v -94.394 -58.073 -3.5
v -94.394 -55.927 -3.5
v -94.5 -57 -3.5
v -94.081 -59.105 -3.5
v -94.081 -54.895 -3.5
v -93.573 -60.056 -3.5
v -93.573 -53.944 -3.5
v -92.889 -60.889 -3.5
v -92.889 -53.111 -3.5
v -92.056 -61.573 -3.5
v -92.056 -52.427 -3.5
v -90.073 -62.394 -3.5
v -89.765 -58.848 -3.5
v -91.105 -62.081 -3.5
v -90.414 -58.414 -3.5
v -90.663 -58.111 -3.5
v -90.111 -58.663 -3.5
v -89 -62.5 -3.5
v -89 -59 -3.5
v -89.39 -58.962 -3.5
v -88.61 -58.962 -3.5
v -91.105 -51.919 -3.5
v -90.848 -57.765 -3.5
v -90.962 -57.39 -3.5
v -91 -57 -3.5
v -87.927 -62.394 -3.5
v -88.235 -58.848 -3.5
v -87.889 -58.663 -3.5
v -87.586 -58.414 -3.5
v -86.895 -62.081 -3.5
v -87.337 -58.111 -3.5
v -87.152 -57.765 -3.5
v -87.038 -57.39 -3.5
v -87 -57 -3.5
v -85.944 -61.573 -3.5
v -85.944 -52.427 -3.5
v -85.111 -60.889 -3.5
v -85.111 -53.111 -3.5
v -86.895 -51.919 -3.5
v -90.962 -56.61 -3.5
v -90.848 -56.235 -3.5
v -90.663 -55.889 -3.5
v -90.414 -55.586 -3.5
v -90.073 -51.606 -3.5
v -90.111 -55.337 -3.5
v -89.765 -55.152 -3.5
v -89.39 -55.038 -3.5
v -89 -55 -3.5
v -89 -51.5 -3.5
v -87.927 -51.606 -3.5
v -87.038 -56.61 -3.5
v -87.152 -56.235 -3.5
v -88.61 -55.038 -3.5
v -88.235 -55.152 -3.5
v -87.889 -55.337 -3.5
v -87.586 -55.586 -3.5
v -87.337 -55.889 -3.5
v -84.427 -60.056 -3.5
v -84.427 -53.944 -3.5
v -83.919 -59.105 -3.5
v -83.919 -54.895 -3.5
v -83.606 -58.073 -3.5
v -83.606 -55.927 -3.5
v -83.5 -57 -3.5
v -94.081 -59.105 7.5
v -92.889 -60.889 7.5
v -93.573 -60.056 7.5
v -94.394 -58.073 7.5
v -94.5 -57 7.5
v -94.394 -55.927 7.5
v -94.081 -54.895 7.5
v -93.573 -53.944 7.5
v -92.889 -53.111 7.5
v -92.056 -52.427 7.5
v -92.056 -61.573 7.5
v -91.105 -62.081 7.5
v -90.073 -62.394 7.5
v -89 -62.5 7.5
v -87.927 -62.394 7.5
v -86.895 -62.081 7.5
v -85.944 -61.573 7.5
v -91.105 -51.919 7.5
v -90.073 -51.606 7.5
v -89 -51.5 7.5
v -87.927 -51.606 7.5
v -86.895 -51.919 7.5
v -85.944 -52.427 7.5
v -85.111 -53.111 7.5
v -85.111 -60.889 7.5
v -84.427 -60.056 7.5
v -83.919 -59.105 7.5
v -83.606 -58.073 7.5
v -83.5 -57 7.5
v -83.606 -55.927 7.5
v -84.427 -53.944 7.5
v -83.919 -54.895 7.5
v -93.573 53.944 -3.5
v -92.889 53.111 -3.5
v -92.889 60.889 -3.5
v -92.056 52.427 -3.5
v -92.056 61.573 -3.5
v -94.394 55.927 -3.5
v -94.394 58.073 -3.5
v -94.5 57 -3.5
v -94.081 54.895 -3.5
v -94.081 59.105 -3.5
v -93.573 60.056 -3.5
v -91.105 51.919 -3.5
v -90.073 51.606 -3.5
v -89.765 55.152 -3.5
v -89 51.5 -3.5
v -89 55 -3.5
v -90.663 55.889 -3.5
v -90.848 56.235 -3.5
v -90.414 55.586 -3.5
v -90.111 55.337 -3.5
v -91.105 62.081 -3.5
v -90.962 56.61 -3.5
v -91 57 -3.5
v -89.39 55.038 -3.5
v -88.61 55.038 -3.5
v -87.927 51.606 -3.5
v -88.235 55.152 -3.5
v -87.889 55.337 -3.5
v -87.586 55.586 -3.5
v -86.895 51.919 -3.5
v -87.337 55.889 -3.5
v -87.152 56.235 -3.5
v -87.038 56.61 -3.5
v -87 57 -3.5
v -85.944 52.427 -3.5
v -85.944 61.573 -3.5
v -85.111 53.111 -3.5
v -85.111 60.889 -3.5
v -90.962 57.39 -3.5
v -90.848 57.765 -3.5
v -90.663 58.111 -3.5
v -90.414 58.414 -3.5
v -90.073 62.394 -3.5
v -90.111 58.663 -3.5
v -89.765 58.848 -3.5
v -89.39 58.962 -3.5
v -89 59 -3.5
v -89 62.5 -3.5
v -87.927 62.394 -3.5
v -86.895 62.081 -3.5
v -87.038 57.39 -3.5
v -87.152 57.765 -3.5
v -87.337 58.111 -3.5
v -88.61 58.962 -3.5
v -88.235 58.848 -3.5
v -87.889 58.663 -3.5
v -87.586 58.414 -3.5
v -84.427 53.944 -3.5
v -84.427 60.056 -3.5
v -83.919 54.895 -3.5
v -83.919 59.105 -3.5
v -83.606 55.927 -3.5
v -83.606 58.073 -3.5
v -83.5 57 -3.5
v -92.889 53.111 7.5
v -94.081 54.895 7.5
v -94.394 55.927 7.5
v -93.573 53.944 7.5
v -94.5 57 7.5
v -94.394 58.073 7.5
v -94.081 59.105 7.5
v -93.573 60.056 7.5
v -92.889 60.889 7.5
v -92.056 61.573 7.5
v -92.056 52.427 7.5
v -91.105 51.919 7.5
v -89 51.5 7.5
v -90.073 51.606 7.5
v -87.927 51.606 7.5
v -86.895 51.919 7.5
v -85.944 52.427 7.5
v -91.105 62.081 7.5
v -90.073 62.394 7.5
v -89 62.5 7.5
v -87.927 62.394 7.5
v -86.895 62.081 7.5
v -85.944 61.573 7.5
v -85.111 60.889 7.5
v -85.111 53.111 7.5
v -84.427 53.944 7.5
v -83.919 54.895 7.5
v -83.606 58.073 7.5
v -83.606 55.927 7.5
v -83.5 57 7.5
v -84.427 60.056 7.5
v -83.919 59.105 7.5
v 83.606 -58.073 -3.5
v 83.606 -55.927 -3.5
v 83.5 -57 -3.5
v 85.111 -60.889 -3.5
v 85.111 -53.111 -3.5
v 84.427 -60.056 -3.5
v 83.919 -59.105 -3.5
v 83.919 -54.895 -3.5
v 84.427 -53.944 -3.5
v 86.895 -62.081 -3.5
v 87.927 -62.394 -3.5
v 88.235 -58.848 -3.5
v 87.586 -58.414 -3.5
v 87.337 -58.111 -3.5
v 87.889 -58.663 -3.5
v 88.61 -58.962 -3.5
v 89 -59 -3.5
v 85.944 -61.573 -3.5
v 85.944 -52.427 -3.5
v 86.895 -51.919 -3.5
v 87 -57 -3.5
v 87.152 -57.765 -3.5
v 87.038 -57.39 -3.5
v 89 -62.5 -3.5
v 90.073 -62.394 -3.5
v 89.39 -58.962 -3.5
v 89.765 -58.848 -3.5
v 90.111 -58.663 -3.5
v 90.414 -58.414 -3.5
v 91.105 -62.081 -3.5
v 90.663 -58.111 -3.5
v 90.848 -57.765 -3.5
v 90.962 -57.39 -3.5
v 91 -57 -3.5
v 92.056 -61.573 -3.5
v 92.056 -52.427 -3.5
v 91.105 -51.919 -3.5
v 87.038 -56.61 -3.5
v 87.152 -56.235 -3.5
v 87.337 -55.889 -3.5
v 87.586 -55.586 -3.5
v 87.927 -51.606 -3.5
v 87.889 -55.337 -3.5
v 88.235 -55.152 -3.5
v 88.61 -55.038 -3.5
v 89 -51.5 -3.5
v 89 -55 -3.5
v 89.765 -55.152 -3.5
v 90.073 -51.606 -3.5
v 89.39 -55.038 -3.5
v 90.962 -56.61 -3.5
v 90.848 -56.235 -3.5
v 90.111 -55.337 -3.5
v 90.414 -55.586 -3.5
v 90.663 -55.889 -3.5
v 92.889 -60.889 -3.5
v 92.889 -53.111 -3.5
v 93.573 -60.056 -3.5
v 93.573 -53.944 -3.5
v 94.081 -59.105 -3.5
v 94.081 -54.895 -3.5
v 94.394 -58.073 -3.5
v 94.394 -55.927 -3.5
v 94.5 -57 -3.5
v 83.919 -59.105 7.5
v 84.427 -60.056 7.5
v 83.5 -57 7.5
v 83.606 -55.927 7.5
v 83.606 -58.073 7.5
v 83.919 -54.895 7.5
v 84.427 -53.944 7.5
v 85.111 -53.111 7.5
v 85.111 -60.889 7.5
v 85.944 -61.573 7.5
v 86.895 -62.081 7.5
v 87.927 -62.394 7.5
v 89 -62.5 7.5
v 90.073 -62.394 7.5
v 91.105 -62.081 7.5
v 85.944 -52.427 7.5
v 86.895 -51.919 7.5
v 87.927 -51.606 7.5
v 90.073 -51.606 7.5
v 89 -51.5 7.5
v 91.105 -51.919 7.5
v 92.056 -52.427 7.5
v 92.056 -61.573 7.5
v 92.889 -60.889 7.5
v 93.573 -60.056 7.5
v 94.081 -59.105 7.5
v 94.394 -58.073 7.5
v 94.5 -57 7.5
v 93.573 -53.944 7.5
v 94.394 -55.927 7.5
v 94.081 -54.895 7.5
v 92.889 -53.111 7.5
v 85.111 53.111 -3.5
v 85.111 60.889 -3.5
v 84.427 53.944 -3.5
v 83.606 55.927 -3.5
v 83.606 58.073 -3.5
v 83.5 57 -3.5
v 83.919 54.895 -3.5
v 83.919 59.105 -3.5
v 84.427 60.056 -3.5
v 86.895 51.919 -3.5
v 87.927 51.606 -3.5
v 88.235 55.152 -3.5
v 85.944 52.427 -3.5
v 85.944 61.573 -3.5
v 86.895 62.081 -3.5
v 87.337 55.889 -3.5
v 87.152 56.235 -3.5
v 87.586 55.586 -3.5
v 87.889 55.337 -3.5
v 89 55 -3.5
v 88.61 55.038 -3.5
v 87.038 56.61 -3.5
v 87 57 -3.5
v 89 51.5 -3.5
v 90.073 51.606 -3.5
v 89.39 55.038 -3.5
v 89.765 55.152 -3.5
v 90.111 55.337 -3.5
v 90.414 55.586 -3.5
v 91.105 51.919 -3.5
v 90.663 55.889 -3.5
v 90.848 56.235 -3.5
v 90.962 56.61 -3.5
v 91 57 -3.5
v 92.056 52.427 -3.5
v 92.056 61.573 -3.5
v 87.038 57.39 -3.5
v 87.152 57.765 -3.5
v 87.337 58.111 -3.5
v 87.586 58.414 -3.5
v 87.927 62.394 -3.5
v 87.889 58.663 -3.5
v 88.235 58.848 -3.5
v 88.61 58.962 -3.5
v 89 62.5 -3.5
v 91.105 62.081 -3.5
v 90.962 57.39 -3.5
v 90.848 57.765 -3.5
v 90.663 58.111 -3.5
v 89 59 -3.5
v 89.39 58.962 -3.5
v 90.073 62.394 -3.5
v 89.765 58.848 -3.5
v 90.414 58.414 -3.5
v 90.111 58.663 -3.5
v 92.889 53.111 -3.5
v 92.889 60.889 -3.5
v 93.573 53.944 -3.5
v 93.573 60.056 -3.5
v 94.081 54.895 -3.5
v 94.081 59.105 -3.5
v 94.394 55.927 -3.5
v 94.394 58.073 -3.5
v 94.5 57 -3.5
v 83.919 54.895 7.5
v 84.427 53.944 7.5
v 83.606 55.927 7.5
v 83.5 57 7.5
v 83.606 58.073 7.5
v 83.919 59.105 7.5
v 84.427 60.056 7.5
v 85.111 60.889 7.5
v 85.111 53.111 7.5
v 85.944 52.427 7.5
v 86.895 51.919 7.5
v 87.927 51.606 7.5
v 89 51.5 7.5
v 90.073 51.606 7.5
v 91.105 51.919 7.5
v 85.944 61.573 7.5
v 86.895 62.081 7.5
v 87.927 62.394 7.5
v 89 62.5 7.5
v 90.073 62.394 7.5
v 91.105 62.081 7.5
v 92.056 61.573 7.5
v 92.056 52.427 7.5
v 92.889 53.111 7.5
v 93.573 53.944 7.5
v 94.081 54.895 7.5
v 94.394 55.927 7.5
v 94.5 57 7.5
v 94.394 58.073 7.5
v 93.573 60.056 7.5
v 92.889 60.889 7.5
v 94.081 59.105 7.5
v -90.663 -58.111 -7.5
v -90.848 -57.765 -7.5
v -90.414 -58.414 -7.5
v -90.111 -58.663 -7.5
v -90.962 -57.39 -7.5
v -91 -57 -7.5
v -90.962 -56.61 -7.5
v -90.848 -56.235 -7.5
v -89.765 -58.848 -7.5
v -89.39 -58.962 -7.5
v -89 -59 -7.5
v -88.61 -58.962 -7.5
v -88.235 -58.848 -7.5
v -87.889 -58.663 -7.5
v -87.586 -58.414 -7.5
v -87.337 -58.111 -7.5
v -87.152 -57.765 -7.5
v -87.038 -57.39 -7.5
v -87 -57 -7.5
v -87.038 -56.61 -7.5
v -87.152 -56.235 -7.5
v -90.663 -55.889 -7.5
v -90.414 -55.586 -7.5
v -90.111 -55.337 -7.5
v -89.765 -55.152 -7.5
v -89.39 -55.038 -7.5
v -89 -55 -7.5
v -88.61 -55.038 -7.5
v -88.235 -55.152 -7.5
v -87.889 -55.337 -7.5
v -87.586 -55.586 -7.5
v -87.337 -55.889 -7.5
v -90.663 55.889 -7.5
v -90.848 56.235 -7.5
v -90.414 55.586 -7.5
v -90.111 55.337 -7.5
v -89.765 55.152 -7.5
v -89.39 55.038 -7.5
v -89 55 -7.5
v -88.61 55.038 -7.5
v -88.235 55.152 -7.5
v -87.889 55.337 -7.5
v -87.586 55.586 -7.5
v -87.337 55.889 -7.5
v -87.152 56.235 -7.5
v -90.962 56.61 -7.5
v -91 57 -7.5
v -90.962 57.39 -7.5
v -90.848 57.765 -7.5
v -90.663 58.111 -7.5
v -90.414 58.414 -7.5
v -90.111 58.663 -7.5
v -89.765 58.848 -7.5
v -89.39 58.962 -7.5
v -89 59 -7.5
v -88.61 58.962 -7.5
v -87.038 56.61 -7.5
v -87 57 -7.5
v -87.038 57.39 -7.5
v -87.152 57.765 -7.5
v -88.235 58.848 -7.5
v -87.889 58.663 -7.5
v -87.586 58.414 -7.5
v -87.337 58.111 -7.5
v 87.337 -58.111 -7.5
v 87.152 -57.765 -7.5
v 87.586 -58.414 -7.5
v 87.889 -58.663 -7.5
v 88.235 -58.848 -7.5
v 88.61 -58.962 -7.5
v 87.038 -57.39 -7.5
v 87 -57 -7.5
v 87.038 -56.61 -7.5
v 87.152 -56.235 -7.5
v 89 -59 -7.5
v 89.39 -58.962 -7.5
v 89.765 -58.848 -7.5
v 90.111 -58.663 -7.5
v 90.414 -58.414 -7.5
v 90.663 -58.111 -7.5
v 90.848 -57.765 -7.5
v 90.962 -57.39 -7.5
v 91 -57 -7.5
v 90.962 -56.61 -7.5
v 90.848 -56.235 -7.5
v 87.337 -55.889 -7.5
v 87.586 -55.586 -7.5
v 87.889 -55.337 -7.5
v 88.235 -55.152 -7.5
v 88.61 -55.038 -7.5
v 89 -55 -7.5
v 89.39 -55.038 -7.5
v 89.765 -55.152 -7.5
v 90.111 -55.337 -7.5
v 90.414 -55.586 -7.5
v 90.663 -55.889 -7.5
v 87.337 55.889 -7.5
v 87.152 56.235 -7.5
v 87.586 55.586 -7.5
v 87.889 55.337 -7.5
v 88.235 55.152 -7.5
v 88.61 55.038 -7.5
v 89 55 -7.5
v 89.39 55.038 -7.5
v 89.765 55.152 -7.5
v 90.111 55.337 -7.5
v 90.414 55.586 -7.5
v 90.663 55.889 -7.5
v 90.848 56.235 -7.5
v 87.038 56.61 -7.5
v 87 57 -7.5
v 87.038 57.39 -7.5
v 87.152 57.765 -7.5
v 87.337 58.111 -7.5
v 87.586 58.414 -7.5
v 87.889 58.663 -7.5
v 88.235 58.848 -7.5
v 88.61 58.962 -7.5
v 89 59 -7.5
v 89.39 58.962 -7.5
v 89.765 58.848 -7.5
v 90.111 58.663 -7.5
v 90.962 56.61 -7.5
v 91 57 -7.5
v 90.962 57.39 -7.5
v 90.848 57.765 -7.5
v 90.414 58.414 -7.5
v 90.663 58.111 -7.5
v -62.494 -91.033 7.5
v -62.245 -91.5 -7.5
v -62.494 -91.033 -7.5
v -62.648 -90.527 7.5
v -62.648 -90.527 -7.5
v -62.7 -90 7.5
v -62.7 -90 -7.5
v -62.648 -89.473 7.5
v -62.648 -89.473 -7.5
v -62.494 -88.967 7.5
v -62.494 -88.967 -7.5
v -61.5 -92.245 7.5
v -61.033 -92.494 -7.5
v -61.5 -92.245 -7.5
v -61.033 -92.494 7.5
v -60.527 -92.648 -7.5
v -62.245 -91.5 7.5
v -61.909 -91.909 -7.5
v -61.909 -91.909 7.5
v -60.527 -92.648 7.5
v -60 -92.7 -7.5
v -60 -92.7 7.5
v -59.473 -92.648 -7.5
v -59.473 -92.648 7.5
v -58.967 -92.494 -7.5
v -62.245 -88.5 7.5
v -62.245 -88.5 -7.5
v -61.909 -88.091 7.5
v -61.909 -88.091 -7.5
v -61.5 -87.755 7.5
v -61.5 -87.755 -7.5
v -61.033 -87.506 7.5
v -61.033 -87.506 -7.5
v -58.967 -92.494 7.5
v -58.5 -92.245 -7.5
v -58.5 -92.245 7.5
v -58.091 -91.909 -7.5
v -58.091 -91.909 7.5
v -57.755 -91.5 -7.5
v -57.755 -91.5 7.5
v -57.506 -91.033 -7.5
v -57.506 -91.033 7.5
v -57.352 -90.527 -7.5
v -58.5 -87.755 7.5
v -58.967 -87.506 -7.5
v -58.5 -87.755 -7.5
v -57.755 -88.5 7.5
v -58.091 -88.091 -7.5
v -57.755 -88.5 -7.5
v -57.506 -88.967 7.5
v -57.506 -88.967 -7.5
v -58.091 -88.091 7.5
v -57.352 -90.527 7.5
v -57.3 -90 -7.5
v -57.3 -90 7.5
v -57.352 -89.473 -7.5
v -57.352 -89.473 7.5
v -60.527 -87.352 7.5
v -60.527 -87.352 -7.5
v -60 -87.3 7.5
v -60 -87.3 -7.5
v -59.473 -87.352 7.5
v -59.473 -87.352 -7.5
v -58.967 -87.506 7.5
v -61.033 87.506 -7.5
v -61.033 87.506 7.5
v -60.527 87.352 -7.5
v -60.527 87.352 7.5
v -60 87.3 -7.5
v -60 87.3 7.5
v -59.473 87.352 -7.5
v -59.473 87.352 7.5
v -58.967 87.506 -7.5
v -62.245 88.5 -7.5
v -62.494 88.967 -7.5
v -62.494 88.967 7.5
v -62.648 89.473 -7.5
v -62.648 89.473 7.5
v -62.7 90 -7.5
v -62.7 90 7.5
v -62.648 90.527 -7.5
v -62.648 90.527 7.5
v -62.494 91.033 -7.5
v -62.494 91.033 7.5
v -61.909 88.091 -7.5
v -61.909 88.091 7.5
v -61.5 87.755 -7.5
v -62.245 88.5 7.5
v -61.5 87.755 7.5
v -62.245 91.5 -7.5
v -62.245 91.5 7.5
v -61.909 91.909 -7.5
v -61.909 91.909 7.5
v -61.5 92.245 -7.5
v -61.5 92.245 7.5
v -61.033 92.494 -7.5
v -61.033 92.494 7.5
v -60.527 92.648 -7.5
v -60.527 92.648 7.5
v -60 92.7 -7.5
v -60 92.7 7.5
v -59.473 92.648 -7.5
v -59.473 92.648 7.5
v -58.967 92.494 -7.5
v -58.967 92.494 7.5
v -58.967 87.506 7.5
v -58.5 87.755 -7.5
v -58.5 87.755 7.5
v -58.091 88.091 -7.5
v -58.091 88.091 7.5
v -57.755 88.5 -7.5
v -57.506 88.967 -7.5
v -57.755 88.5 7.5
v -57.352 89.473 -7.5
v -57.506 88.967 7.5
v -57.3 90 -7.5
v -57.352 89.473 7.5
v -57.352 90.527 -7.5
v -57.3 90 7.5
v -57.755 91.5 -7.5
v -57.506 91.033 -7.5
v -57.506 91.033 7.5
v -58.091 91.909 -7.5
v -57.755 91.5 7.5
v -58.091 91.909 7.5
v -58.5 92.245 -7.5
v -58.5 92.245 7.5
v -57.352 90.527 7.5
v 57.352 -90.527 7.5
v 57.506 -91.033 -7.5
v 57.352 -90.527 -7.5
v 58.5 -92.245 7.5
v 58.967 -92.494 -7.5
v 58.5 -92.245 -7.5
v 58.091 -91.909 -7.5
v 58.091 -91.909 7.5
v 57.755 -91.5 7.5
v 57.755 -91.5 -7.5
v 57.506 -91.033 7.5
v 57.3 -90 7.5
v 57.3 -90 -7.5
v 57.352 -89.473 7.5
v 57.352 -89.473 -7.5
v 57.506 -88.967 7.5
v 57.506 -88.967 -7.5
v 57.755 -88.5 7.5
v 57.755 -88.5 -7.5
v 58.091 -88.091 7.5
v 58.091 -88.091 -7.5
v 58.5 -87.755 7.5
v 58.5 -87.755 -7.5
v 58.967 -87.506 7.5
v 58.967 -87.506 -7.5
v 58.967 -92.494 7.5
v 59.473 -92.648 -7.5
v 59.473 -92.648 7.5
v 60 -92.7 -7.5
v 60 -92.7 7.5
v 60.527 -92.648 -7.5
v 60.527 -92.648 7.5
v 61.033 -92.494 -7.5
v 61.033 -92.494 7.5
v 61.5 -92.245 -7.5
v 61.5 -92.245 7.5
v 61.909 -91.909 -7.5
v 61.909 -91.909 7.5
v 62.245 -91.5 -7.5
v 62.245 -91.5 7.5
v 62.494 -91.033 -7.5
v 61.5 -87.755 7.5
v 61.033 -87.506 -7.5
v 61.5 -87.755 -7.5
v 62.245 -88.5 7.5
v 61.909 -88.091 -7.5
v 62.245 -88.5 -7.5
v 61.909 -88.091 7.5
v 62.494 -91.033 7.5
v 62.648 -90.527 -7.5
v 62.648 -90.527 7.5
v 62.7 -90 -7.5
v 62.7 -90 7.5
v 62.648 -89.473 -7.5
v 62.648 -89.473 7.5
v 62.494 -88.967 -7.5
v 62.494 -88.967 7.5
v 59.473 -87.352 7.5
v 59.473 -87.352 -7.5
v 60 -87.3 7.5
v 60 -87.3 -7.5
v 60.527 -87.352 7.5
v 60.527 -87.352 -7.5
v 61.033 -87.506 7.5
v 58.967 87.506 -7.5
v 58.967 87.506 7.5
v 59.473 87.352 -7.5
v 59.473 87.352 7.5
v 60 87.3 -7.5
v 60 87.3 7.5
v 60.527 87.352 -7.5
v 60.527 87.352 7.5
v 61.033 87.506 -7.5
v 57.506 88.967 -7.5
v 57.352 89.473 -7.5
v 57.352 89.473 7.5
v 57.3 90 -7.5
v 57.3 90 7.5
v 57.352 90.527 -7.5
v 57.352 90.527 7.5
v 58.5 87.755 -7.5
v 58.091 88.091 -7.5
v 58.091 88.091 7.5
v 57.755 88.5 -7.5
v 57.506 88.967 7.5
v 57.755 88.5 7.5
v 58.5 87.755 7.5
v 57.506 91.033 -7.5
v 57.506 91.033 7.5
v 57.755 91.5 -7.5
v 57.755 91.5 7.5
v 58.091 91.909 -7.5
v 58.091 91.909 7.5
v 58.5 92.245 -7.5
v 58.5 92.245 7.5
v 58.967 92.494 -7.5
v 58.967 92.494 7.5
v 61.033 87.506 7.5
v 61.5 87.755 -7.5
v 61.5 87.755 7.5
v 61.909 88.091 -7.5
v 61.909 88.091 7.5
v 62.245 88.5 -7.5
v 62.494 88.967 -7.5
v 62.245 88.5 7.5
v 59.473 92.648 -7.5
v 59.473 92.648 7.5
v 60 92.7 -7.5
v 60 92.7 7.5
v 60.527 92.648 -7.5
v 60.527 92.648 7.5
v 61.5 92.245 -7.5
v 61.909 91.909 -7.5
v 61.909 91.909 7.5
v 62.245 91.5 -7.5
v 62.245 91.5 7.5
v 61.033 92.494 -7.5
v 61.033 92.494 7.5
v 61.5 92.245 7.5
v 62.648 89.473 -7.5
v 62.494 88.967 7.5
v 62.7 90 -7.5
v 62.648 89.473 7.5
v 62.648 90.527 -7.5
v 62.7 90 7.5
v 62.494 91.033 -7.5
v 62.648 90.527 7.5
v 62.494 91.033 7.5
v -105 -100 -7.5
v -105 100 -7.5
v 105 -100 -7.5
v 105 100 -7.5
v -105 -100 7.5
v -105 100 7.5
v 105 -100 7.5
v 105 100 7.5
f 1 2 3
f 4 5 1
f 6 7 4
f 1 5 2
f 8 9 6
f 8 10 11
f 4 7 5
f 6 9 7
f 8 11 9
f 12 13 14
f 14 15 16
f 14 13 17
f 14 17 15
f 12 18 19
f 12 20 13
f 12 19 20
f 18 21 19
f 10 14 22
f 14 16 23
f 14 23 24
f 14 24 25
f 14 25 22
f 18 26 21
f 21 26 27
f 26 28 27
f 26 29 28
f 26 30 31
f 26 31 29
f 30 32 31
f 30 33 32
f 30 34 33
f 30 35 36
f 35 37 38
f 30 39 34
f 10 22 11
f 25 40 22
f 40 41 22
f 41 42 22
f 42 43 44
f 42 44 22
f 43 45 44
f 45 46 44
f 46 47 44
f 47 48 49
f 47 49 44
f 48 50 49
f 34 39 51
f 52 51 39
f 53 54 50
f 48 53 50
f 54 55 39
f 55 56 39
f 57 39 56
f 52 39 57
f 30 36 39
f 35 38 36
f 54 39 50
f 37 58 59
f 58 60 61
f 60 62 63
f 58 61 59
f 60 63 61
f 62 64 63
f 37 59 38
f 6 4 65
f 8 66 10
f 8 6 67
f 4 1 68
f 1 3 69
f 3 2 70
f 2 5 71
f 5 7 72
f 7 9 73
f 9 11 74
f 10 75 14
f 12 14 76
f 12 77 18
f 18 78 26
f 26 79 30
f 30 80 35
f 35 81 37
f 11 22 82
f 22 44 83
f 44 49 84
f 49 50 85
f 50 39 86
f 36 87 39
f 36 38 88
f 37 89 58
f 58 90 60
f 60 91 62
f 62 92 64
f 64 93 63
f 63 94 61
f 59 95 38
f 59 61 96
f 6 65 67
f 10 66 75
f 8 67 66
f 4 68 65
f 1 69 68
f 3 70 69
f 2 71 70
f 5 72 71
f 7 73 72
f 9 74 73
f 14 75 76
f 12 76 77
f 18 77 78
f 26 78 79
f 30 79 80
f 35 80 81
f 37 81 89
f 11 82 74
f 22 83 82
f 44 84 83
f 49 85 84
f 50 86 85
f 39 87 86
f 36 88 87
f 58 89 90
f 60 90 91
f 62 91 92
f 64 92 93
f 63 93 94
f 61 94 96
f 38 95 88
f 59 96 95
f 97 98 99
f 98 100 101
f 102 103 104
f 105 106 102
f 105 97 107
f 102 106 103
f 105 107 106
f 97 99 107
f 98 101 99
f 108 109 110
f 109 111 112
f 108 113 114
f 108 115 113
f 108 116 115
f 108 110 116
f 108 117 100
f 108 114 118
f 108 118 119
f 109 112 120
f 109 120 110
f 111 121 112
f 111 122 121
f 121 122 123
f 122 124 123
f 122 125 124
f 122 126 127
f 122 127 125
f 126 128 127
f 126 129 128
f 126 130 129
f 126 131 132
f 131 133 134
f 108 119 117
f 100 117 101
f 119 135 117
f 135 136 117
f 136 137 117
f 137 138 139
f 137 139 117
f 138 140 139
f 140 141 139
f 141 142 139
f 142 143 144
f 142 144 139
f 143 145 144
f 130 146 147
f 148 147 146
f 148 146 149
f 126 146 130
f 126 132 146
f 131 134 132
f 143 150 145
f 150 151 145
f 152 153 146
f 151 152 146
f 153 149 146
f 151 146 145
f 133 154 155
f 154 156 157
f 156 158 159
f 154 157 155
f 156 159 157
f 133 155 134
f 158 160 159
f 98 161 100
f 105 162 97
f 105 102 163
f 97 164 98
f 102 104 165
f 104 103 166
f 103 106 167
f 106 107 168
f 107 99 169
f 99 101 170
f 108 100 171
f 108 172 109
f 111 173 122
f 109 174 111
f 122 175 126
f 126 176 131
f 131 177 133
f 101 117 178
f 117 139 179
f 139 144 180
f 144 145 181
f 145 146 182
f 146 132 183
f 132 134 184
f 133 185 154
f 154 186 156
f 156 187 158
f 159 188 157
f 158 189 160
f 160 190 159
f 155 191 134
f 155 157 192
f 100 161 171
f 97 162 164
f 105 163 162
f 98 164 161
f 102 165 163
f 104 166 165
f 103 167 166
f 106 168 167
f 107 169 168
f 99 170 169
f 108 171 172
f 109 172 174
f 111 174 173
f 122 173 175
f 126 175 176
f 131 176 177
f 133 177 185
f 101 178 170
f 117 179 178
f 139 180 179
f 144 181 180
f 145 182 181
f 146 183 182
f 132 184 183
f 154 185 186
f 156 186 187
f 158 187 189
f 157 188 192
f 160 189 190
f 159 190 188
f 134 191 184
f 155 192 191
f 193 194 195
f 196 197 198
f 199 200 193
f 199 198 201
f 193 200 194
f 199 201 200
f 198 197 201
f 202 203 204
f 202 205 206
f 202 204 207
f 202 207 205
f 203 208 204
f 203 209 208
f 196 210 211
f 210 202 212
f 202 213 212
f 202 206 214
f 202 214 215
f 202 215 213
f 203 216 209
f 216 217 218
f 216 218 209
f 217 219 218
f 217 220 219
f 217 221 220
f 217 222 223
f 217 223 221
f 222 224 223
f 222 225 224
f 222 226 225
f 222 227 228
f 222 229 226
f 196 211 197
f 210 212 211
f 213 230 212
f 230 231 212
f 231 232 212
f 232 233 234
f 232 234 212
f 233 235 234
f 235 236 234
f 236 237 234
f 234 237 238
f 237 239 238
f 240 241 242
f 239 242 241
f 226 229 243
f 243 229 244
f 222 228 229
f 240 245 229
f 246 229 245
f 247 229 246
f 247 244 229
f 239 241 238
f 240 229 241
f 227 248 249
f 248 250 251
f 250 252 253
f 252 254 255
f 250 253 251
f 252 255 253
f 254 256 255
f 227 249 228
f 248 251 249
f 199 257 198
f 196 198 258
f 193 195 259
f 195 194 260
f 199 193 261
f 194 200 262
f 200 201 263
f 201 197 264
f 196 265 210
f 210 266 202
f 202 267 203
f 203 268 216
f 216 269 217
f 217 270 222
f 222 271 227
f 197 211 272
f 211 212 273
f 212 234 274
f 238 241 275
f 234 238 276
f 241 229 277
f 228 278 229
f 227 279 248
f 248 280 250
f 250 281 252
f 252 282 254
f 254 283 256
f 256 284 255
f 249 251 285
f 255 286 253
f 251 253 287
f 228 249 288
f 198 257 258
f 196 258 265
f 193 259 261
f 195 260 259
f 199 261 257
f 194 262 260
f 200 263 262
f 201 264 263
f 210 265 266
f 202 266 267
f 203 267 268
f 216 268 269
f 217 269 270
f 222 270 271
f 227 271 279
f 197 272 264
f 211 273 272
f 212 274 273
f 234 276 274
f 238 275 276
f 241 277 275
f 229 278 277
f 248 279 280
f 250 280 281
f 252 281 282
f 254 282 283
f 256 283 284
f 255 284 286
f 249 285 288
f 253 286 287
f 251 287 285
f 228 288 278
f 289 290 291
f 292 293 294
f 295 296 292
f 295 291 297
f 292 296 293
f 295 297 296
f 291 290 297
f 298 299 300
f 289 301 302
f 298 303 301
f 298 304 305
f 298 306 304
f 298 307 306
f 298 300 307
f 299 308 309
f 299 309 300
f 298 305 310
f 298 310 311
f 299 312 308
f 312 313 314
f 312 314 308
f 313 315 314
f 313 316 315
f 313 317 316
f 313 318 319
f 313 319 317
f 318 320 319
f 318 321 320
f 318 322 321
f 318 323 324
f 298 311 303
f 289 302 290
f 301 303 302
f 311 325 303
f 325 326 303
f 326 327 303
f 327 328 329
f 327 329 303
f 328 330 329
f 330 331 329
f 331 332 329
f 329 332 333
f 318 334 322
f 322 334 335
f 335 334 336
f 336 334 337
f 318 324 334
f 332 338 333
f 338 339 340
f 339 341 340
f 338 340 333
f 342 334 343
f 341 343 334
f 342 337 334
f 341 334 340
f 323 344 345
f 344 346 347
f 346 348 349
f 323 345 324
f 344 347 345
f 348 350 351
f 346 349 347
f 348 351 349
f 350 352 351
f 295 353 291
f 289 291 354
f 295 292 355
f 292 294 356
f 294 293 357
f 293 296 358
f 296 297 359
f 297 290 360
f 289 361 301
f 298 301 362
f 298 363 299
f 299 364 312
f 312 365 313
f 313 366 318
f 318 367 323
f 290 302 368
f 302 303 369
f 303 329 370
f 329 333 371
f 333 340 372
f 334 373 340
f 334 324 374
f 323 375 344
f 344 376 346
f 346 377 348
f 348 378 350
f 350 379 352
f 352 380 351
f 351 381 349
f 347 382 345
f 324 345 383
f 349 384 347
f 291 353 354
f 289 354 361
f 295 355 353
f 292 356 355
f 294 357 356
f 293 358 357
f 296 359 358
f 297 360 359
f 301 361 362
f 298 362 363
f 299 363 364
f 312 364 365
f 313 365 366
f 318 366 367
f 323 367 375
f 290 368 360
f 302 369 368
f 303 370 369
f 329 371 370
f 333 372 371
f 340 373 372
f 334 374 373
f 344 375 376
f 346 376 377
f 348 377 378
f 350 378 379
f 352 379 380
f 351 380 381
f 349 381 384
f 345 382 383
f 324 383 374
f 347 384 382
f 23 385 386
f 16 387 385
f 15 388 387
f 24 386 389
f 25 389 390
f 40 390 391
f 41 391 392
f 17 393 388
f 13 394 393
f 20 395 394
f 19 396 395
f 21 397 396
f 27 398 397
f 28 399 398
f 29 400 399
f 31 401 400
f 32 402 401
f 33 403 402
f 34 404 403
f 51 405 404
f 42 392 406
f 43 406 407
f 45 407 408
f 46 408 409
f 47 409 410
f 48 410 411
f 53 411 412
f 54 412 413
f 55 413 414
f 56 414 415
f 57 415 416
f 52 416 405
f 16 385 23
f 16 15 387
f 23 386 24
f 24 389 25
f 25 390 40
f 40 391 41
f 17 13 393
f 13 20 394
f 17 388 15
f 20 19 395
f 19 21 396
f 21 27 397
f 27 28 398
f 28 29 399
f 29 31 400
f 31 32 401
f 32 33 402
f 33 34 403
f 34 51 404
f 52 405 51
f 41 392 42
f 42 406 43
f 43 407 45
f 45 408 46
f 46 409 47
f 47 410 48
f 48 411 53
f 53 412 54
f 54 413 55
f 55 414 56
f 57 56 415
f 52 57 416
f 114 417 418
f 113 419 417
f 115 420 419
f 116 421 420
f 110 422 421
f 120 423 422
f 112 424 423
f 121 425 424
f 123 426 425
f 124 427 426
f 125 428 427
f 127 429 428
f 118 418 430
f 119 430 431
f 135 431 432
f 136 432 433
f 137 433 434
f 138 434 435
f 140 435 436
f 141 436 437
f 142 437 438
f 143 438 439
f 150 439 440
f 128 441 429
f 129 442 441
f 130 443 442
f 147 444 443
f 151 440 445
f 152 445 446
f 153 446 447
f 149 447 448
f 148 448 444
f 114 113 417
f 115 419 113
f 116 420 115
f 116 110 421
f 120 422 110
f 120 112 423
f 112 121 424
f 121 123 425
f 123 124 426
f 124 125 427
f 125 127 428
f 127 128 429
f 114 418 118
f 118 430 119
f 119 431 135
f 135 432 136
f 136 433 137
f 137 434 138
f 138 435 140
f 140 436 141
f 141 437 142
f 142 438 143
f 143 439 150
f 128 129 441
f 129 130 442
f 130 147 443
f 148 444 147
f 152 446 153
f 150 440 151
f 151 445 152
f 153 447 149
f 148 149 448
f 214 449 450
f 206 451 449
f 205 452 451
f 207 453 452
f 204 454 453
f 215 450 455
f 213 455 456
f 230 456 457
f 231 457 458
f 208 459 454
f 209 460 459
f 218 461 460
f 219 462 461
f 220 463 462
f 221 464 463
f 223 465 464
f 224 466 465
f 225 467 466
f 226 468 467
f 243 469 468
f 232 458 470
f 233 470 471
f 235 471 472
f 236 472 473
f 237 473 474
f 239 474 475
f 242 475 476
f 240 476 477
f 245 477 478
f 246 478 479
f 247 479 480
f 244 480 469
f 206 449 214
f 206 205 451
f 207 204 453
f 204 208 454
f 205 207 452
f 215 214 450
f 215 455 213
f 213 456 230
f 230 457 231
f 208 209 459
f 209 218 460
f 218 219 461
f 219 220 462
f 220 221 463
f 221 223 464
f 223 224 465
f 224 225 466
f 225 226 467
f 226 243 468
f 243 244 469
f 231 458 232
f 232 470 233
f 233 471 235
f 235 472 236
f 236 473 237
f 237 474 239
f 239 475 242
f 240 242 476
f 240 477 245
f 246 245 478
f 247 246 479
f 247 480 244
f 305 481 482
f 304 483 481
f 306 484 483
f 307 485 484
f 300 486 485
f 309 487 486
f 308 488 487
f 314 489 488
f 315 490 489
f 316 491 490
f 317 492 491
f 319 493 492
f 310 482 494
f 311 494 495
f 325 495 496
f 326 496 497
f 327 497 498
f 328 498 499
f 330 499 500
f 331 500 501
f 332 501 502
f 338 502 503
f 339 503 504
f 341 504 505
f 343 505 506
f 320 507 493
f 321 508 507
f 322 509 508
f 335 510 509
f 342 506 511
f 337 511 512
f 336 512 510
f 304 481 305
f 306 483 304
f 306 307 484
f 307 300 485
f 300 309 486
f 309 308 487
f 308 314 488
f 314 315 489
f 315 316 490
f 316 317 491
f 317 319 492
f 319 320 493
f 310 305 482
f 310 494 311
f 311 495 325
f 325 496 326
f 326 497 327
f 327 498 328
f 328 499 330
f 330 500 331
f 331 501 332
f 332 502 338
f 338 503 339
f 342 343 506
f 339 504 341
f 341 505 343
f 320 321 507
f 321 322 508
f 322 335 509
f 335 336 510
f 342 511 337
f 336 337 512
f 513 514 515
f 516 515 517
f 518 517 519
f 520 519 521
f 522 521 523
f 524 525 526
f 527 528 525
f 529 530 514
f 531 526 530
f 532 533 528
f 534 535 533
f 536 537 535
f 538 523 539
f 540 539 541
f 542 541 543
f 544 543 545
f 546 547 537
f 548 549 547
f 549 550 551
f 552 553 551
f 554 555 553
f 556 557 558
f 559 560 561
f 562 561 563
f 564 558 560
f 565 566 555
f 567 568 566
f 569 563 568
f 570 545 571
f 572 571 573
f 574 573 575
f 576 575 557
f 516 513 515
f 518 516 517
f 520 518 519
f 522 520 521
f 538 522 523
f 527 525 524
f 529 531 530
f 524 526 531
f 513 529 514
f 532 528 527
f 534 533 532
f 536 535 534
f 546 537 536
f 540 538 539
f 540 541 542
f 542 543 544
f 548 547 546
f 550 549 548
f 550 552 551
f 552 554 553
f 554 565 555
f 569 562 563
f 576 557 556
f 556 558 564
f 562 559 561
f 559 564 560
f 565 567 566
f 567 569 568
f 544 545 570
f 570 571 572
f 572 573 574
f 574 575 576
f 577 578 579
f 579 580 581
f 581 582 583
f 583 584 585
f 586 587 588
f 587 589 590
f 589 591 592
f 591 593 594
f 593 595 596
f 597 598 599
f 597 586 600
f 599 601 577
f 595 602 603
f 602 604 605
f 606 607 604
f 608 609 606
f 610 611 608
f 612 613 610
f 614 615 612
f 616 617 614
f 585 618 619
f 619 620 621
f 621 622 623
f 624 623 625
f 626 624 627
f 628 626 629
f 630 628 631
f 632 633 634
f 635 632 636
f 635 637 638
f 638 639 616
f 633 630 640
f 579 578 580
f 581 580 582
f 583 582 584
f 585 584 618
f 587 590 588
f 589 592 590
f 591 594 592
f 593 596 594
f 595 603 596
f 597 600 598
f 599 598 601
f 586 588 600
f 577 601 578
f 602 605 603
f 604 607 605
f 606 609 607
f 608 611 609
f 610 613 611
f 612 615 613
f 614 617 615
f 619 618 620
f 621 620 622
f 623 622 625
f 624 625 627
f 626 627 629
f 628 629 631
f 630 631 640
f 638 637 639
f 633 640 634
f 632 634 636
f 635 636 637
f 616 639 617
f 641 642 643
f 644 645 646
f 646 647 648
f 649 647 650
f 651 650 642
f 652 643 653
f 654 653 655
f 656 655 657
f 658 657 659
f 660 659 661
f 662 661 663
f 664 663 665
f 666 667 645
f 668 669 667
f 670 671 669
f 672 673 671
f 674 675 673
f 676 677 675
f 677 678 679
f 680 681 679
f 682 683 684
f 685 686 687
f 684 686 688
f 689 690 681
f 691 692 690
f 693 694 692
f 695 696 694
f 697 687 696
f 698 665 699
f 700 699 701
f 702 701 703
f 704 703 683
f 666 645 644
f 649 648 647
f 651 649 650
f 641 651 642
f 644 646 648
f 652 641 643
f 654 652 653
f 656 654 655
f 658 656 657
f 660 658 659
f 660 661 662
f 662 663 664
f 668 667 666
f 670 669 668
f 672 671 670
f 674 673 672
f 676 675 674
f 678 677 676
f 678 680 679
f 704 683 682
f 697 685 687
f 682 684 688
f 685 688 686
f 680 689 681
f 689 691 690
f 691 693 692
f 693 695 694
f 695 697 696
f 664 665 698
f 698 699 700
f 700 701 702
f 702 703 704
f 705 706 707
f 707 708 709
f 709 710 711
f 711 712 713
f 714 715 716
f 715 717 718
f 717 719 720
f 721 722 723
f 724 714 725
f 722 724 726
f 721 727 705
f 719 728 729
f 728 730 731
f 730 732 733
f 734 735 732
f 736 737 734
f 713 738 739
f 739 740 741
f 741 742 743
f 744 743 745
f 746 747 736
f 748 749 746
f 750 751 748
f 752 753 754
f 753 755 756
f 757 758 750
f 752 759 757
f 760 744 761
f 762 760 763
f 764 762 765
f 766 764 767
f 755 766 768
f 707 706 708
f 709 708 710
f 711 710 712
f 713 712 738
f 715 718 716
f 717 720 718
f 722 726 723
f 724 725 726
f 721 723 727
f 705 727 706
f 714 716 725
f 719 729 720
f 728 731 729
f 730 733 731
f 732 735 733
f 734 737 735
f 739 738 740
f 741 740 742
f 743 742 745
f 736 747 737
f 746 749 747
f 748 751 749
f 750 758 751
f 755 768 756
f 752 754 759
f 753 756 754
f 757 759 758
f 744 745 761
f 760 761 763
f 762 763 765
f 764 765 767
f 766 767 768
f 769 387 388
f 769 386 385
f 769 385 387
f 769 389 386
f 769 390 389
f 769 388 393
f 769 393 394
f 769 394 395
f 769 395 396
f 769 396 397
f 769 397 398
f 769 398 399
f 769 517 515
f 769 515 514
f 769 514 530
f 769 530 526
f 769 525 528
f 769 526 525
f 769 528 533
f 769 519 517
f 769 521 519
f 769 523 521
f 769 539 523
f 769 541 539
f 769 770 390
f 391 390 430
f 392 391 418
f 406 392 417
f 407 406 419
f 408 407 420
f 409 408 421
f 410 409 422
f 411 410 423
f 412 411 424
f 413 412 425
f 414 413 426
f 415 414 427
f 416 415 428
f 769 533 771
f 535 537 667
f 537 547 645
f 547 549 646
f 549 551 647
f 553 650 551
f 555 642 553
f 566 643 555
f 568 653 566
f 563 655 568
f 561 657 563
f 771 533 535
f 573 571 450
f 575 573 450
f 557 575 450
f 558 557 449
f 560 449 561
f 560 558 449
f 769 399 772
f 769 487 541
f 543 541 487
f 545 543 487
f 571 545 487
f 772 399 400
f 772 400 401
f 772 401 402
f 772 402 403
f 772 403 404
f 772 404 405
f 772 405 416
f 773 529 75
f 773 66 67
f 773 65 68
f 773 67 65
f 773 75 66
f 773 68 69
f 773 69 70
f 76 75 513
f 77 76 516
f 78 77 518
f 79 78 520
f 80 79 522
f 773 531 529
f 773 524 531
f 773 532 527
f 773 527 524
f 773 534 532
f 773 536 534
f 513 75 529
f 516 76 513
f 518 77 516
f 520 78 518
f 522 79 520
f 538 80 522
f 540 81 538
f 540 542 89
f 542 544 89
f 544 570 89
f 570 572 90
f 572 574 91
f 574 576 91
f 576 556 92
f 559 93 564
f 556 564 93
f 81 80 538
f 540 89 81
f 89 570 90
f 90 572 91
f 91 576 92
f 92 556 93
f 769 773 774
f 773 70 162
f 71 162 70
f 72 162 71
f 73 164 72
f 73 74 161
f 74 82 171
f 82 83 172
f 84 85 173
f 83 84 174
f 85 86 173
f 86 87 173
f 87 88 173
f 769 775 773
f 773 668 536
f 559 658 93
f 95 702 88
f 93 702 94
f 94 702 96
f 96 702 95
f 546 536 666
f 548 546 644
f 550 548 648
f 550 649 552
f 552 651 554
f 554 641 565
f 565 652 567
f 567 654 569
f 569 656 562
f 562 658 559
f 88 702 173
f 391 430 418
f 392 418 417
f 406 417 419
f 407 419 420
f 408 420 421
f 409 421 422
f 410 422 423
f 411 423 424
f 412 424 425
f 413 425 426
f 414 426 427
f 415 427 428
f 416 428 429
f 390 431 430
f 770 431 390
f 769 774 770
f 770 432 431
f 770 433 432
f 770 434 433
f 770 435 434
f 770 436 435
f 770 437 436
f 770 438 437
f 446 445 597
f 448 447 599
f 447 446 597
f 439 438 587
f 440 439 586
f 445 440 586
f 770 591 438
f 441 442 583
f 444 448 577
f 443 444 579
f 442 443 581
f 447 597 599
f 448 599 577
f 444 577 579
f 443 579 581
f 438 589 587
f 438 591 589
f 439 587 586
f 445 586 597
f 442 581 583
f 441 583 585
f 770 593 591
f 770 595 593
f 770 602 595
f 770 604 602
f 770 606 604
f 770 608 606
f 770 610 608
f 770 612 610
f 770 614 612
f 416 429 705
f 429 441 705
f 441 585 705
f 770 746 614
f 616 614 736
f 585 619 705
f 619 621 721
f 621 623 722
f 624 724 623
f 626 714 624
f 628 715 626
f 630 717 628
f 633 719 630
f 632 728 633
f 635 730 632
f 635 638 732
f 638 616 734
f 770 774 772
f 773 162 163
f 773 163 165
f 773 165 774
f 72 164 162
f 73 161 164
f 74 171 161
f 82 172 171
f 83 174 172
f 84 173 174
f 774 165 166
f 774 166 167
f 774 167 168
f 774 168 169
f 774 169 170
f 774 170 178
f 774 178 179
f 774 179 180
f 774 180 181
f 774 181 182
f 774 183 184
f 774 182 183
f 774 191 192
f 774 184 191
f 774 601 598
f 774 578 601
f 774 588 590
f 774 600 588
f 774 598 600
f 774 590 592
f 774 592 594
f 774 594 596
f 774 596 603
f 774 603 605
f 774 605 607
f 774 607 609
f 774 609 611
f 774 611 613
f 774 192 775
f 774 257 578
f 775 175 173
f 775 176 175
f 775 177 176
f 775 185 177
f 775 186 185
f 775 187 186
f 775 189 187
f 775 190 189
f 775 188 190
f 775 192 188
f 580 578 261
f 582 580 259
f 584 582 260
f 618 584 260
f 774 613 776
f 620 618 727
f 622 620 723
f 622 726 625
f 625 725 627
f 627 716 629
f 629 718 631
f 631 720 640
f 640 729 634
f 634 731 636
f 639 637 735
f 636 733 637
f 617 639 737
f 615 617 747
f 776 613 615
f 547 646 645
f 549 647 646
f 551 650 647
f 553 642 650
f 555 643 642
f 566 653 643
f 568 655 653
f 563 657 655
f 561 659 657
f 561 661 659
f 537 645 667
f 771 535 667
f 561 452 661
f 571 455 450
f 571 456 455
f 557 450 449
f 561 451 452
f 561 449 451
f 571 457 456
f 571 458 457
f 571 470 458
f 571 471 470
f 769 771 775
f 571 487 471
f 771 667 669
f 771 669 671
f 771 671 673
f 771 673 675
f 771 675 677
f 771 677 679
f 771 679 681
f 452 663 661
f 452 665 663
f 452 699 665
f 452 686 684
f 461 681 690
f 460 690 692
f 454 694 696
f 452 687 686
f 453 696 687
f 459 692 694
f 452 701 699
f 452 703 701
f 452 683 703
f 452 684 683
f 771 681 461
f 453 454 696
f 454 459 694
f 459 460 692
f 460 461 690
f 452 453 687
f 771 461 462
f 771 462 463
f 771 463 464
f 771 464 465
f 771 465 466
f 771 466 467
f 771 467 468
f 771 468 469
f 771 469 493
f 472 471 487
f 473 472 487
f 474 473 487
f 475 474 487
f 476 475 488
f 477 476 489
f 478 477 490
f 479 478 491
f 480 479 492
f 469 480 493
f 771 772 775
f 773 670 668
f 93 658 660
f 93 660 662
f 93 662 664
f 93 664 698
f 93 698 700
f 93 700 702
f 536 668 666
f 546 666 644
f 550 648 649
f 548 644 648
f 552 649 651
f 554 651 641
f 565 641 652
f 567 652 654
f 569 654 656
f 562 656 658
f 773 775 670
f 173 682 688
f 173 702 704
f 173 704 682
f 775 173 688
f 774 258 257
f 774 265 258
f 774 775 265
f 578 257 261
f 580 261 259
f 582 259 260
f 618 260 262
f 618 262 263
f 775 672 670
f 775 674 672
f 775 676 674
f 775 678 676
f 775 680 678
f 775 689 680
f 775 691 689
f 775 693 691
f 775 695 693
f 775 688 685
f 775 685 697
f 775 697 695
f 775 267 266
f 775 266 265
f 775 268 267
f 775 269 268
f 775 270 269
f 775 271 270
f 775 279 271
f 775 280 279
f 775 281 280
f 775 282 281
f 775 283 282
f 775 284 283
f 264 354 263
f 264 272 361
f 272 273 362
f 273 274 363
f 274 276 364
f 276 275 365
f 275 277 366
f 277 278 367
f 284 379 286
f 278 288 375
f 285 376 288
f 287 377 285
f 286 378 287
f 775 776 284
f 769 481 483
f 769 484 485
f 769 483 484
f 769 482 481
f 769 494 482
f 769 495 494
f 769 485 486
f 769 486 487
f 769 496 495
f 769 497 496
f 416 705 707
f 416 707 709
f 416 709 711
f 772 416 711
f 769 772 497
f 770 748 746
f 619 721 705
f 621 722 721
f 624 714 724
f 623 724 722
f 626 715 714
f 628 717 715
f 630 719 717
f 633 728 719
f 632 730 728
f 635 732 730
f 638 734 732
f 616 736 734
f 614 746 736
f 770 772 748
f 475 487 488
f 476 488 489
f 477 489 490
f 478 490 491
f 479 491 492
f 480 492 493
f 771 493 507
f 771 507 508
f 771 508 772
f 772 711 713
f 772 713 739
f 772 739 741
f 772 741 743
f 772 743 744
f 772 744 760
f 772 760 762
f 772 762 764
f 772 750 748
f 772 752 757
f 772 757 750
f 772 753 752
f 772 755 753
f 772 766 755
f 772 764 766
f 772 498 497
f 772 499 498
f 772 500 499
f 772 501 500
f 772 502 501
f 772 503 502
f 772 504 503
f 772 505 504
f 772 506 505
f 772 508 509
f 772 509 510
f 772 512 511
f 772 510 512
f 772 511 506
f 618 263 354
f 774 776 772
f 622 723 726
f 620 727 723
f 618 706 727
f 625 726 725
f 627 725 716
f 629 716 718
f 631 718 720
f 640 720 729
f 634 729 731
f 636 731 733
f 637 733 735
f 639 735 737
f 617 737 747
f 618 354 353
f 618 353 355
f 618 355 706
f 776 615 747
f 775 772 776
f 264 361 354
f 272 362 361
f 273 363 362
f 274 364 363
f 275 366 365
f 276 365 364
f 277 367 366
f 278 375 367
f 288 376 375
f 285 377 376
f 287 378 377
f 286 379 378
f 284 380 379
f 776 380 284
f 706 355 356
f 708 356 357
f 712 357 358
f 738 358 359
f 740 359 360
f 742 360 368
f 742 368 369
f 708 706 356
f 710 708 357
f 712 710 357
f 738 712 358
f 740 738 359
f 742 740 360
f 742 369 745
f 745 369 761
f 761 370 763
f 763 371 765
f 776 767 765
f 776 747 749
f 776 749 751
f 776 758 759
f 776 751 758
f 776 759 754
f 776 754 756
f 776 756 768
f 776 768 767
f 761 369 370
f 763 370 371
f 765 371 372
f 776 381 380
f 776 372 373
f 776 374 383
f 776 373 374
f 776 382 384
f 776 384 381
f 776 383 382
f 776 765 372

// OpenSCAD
/*
 * fixture-plate.scad — CNC fixture plate for Hammond 1590DD top panel milling
 *
 * Screws down to SRcnc wasteboard via M5 carriage holes.
 * Case mounted open-side-down: screws go through plate up into case corner bosses.
 * Washer between screw head and MDF prevents pull-through.
 *
 * Coordinate system: center of plate = center of case = machine X110 Y190
 *
 * Wasteboard carriage hole pattern (from srcnc/scad/main.scad):
 *   X: ±ycarriage_separation/2 = ±60mm
 *   Y: ±yrail_separation/2     = ±90mm
 *   Screw: M5, head sits on top of plate
 *
 * 1590DD case screw hole pattern (from datasheet):
 *   X: ±89mm from case center
 *   Y: ±57mm from case center
 *   Screw: original case screws (#6-32 or M3), min ~10mm length
 *   Washer: ø10mm, sits in counterbore
 *
 * Material: 15mm MDF
 * Mill this plate on the SRcnc before using it as a fixture.
 */

// === PARAMETERS ===

plate_thickness = 15;       // mm — MDF thickness

// Wasteboard carriage holes — M5 through hole, screw head sits on top
carriage_hole_x = 60;       // ±mm from center
carriage_hole_y = 90;       // ±mm from center
carriage_screw_d = 5.4;     // M5 clearance

// Case screw holes — counterbored for washer+head, through hole for shank
// Original case screws (#6-32 or M3) + ø10mm washer
case_hole_x = 89;           // ±mm from center
case_hole_y = 57;           // ±mm from center
case_screw_d   = 4.0;       // shank clearance (peck drilled with 4mm tool)
case_cbore_d   = 11.0;      // counterbore for ø10mm washer + 0.5mm clearance
case_cbore_depth = 11.0;    // counterbore depth — leaves 4mm MDF below washer
                            // min screw length ~10mm (4mm plate + ~4-6mm into case boss)

// Plate size — large enough to cover all holes with margin
plate_w = 210;              // mm
plate_h = 200;              // mm

// === MODULES ===

module carriage_holes() {
    for (x = [-carriage_hole_x, carriage_hole_x])
        for (y = [-carriage_hole_y, carriage_hole_y])
            translate([x, y, 0]) children();
}

module case_holes() {
    for (x = [-case_hole_x, case_hole_x])
        for (y = [-case_hole_y, case_hole_y])
            translate([x, y, 0]) children();
}

module fixture_plate() {
    difference() {
        // Plate body
        cube([plate_w, plate_h, plate_thickness], center=true);

        // Case screw holes — counterbore for washer+head, through hole for shank
        case_holes() {
            // Counterbore from top (washer + head recess)
            translate([0, 0, plate_thickness/2 - case_cbore_depth])
                cylinder(d=case_cbore_d, h=case_cbore_depth + 0.01, $fn=32);
            // Shank through hole
            translate([0, 0, -plate_thickness/2 - 0.01])
                cylinder(d=case_screw_d, h=plate_thickness + 0.02, $fn=32);
        }

        // Carriage holes — M5 through hole
        carriage_holes()
            translate([0, 0, -plate_thickness/2 - 0.01])
                cylinder(d=carriage_screw_d, h=plate_thickness + 0.02, $fn=32);
    }
}

// === RENDER ===

fixture_plate();
